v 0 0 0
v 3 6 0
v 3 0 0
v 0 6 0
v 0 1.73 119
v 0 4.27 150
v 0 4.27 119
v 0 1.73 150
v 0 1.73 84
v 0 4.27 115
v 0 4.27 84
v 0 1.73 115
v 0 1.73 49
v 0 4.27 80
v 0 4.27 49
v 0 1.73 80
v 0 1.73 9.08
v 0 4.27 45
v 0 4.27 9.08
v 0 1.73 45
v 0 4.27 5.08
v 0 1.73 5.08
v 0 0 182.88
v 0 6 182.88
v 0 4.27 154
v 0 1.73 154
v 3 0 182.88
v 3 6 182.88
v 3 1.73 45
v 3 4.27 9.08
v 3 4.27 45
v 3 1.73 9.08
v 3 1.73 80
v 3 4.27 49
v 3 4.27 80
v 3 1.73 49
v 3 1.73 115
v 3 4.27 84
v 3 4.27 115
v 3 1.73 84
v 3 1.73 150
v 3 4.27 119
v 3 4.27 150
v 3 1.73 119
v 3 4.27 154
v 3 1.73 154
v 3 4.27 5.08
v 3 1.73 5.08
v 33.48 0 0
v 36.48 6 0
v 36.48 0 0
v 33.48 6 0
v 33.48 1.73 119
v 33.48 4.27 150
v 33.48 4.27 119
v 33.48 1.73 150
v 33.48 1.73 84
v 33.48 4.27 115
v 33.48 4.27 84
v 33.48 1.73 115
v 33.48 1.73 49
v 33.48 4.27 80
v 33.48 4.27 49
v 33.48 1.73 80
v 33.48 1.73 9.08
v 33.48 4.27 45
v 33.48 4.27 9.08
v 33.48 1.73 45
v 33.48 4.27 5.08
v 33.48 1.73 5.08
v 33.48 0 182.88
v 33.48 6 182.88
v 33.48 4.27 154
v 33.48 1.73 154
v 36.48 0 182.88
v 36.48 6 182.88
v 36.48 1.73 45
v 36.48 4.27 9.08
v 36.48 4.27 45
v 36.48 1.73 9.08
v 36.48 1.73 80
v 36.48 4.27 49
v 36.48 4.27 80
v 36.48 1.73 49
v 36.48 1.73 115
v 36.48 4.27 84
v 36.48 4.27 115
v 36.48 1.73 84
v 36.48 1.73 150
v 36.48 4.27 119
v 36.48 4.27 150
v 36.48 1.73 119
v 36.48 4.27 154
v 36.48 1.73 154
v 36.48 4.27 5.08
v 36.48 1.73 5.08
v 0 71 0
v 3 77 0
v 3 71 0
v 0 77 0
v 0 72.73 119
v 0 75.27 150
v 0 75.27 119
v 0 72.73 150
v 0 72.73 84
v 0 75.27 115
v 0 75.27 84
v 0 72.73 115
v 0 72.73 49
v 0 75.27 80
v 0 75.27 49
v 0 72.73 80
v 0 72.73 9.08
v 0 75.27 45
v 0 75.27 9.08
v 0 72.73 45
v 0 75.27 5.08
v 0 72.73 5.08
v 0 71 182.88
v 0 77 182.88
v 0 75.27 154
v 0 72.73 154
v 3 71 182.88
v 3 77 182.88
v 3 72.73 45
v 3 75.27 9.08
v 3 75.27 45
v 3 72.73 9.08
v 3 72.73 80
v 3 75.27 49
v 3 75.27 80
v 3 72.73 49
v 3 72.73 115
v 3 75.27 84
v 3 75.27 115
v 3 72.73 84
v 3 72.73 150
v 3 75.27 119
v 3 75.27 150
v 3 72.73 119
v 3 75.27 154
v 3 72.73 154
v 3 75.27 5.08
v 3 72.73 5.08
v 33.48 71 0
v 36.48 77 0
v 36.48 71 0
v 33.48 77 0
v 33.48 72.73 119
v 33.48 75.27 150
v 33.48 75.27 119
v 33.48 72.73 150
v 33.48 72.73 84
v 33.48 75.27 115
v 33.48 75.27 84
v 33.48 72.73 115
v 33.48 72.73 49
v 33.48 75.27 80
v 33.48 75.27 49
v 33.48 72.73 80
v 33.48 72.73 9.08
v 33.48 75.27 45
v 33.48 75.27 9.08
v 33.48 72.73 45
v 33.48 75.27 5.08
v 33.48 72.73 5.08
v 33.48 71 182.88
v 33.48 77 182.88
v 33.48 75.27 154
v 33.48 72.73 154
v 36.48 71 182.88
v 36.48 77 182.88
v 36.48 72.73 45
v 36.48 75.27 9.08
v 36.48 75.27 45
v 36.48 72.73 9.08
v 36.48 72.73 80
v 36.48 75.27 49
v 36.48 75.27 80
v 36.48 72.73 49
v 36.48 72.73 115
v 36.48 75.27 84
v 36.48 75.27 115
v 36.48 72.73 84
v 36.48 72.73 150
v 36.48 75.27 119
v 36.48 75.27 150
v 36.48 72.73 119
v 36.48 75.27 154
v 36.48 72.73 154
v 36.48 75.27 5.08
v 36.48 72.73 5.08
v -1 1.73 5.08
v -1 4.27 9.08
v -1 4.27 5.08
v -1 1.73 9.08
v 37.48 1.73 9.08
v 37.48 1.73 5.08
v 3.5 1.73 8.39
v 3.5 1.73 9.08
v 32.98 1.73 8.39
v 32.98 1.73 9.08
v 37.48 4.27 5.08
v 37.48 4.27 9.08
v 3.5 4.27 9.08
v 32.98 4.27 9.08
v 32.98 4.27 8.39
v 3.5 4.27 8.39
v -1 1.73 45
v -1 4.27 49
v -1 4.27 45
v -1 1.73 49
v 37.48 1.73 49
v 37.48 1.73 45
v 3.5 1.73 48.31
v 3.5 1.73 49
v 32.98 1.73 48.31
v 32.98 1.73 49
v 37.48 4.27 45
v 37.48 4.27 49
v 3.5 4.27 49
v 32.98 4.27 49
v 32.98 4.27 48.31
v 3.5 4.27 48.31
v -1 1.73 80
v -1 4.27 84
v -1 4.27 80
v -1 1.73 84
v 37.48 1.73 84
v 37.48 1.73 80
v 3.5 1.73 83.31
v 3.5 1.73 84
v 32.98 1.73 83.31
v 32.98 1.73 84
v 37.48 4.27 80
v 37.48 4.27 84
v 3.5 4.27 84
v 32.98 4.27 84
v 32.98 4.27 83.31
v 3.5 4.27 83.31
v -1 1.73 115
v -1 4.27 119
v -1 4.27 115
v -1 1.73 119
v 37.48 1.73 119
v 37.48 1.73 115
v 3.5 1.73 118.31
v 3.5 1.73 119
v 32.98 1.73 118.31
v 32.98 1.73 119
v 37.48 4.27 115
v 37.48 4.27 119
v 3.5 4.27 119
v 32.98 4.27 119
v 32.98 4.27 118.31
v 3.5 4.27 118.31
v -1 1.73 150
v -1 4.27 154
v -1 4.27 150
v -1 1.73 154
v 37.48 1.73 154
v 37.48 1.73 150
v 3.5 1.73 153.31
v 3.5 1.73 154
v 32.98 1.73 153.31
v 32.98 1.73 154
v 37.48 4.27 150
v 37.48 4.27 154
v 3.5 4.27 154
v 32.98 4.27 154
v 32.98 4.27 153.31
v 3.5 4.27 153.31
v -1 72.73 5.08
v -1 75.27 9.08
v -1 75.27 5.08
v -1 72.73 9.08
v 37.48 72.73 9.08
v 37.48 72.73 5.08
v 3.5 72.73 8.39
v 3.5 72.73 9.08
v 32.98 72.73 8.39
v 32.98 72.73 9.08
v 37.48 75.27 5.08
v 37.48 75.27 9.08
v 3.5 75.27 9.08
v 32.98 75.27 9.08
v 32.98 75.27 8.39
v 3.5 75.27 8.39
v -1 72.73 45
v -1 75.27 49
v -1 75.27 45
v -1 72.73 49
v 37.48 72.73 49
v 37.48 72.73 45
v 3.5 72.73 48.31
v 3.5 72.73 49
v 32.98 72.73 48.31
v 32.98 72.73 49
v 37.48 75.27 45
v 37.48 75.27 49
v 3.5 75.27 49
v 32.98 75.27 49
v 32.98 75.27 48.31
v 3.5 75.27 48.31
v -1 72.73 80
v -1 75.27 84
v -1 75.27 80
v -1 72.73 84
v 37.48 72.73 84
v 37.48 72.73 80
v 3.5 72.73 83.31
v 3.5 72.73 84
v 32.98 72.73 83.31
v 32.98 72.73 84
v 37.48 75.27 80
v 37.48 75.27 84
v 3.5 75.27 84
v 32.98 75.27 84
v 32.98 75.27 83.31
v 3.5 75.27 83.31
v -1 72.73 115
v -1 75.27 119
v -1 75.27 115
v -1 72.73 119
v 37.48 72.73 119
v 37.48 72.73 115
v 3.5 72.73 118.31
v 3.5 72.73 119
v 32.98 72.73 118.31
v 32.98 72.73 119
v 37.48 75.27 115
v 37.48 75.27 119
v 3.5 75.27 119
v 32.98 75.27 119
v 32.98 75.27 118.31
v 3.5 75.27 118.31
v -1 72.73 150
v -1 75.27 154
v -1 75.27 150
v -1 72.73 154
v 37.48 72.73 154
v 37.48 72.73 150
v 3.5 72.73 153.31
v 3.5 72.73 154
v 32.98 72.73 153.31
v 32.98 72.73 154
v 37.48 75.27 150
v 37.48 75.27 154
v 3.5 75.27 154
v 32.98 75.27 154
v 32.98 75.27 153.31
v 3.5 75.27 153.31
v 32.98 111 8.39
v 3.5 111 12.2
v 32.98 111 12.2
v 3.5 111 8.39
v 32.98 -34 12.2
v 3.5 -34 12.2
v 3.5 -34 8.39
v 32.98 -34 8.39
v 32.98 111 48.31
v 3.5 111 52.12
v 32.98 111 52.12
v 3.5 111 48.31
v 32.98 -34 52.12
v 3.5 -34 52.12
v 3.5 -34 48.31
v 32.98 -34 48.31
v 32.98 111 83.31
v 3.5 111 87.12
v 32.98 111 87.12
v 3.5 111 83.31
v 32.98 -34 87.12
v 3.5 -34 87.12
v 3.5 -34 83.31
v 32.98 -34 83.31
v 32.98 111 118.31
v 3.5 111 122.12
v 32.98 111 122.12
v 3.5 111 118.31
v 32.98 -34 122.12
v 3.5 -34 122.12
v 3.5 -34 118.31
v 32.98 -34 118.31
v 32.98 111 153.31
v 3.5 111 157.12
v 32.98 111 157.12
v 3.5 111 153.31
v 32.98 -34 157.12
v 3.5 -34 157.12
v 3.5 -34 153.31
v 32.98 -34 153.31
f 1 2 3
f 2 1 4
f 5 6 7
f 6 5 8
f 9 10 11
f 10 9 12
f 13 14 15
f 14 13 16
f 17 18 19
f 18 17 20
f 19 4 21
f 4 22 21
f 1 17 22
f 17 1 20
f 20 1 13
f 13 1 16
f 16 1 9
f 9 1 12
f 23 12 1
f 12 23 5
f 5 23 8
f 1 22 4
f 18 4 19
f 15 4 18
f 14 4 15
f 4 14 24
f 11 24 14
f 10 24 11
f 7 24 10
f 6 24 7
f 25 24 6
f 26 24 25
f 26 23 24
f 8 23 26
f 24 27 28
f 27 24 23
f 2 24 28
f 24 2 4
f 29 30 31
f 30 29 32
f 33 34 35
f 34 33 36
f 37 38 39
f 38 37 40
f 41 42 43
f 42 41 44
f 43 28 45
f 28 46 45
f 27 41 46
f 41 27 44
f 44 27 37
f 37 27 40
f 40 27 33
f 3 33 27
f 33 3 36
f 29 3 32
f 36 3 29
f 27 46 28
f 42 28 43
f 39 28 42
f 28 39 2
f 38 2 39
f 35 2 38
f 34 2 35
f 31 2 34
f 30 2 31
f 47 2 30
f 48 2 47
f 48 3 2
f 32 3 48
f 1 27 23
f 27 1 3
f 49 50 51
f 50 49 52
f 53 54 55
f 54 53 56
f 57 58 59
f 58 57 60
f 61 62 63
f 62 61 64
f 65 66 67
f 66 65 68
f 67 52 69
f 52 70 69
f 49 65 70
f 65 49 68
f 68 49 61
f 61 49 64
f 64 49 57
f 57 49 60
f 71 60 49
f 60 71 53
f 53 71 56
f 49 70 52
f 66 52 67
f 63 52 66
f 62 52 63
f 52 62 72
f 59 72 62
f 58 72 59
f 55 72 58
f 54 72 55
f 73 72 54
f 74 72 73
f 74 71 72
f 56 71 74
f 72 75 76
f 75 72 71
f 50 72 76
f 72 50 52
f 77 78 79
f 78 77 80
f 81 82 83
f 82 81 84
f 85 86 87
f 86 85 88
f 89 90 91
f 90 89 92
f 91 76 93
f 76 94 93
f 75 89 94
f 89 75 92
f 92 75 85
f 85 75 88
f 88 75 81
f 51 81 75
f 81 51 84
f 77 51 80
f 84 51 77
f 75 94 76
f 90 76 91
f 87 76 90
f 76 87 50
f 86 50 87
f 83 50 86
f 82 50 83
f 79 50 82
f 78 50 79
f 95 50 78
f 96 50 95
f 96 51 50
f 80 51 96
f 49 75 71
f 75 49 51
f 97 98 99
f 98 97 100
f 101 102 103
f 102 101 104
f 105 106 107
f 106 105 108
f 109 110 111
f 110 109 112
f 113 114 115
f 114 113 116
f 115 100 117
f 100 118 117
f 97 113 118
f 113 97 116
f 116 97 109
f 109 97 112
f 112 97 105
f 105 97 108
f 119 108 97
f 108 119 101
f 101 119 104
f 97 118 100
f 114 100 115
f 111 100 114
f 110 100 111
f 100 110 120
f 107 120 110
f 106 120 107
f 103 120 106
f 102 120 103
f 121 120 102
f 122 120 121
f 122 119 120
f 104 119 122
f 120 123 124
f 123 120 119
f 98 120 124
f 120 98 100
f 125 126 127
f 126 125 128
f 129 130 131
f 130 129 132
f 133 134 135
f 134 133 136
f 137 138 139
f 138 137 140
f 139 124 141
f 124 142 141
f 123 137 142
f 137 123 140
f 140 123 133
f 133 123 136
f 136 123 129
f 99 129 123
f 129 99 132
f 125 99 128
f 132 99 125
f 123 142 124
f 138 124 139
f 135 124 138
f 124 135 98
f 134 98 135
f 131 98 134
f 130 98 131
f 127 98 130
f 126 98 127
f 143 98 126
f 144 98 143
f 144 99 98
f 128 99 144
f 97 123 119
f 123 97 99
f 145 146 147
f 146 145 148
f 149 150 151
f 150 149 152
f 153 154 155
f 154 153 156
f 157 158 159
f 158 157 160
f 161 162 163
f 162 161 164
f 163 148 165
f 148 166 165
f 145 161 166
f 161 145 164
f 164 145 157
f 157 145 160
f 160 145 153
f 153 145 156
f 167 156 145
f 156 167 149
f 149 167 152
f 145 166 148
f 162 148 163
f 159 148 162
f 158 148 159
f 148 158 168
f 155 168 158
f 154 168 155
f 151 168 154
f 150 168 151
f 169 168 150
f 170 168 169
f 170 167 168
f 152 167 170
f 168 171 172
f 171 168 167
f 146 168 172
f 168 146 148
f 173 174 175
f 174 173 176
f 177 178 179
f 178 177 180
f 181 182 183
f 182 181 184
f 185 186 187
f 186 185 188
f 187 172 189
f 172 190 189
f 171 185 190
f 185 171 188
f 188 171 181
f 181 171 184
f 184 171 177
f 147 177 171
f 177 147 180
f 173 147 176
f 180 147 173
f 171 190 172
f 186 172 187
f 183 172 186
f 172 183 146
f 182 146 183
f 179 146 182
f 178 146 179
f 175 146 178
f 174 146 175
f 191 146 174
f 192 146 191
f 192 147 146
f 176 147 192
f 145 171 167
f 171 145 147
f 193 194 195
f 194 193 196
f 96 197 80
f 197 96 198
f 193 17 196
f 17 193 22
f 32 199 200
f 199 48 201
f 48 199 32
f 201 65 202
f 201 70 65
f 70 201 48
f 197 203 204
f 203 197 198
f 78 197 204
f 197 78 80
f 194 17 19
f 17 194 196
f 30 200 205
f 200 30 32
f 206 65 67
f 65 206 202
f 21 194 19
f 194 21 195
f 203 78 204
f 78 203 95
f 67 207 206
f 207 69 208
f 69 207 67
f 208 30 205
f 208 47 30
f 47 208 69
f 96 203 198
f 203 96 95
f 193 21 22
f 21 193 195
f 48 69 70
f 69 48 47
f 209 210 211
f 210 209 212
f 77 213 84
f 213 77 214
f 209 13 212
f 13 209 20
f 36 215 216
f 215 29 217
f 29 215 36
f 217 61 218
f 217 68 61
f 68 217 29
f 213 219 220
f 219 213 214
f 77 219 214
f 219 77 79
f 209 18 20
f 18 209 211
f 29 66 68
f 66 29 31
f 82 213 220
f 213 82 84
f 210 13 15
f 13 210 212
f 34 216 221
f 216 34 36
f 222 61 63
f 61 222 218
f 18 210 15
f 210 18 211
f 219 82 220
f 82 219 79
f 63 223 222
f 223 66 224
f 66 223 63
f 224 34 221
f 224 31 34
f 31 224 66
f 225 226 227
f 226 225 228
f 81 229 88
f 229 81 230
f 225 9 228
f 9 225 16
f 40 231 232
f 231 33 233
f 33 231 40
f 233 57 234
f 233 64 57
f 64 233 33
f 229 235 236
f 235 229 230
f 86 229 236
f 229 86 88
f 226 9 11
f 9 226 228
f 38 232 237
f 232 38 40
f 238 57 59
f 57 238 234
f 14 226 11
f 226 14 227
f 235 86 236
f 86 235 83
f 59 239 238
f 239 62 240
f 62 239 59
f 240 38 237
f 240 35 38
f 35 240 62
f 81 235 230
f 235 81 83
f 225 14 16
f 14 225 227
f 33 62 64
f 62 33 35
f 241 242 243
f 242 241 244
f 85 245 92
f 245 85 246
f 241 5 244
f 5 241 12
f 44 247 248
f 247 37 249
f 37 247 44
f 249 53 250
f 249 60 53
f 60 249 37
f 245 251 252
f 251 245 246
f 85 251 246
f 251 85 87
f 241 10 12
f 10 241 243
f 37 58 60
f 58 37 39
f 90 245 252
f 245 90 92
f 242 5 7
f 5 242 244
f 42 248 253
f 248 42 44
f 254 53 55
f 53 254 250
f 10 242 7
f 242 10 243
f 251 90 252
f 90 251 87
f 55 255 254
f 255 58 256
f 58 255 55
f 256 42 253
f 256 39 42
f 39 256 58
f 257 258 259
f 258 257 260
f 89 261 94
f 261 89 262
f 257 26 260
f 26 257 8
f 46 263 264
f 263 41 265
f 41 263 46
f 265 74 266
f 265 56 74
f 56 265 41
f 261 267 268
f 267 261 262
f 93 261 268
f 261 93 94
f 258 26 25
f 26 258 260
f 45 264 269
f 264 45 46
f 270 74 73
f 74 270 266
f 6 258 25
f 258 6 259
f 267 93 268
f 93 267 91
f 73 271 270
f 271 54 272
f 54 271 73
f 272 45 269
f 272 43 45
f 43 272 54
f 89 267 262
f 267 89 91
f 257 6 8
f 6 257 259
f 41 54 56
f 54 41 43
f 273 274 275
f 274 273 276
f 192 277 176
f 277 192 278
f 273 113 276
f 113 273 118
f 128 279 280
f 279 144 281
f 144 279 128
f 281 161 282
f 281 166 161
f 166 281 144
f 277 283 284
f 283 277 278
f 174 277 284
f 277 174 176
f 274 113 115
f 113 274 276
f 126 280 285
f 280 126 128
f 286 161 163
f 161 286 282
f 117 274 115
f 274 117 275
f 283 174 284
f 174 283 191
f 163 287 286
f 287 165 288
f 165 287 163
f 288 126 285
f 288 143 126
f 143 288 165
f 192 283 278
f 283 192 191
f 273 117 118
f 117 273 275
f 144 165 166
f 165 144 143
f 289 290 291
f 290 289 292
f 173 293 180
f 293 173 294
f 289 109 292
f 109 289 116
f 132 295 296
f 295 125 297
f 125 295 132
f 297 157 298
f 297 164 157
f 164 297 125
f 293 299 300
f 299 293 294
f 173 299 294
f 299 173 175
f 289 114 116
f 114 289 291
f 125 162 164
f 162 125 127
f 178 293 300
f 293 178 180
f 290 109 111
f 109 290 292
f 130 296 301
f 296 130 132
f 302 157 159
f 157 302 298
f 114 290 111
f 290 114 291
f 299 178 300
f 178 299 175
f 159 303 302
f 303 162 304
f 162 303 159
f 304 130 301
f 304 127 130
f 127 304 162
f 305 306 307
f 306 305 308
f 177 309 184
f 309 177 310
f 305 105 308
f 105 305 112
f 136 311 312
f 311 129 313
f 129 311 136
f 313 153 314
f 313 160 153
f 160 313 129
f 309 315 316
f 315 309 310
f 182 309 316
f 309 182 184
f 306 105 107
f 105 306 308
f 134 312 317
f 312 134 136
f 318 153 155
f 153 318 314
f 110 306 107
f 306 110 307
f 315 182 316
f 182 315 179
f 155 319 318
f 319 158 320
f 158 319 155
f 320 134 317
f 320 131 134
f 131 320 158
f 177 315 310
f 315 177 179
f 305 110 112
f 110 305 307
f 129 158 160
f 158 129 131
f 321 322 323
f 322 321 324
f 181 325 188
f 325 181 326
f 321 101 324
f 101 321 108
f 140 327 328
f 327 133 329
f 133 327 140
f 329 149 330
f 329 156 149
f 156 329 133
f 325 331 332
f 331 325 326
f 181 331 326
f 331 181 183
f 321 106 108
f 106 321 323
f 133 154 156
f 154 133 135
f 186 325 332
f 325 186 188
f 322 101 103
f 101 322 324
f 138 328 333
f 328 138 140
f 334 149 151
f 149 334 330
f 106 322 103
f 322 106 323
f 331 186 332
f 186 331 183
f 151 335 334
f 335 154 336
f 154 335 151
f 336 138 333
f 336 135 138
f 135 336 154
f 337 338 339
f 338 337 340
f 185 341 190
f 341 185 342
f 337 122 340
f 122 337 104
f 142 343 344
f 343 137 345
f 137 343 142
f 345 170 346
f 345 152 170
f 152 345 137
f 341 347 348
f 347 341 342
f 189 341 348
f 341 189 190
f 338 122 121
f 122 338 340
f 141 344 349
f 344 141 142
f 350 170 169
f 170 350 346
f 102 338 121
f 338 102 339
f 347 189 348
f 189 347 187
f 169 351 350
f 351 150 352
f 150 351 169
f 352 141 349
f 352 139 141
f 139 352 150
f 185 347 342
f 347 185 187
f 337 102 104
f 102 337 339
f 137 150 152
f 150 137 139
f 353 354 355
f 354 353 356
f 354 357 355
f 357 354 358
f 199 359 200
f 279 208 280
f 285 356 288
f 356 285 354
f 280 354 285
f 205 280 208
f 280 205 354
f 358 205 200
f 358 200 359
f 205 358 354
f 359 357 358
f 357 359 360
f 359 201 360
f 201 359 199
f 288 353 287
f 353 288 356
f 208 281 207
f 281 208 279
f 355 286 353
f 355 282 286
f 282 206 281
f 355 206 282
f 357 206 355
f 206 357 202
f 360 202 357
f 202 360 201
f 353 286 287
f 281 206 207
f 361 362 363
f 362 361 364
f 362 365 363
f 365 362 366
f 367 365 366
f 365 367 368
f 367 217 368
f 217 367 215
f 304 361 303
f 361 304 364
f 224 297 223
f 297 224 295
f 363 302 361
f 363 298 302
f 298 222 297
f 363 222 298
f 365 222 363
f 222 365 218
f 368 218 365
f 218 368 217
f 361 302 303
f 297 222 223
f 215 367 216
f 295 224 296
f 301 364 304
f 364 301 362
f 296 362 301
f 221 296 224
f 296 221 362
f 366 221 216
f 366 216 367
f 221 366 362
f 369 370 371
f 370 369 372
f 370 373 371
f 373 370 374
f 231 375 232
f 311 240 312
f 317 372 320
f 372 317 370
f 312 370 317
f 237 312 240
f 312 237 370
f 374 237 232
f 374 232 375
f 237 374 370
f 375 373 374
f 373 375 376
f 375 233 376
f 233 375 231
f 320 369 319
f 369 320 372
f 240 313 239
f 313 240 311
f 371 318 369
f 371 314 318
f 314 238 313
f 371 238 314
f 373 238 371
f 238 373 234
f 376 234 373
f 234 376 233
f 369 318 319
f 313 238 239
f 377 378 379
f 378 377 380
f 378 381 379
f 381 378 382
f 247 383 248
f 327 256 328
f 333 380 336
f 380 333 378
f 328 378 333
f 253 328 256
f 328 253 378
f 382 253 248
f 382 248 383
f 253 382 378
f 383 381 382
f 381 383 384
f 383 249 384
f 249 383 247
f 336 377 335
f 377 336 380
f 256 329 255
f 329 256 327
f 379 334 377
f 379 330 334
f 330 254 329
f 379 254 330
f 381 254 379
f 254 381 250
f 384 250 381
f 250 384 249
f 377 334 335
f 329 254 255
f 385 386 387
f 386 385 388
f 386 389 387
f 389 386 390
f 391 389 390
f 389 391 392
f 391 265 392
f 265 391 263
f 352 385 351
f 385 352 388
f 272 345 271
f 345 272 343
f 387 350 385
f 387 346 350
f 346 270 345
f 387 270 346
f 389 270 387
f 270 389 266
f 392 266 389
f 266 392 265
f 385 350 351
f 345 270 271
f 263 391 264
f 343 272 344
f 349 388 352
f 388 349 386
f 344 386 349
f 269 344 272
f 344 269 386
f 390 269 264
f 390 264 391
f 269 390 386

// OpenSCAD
// file: common/board.scad
// board.scad

BOARD_DEFAULT_LENGTH = 600;
BOARD_DEFAULT_WIDTH = 120;
BOARD_DEFAULT_THICKNESS = 120;

function board_get_default_size()
    = [BOARD_DEFAULT_LENGTH, BOARD_DEFAULT_WIDTH, BOARD_DEFAULT_THICKNESS];

module board(size = board_get_default_size(), center = false)
{
    // size[0] is always with the grain
    // size[1] is against the grain
    // size[2] is the board thickness
    cube(size = size, center = center);
}
// main file
// shelf.scad
// units: centimeter
// ref https://i.pinimg.com/originals/da/66/4a/da664a588a1fa8e5214f0fcef946b04d.jpg

use <common/board.scad>

TENON_OVERRUN = 1.0;
SHELF_BOARD_GAP = 0.5;
SHELF_INSET = 0.5;

// inside post to post
SHELF_INNER_X_DISTANCE = 30.48;
SHELF_INNER_Y_DISTANCE = 65;

VERT_SUPPORT_BOARD_LENGTH = 182.88;
VERT_SUPPORT_BOARD_WIDTH = 6;
VERT_SUPPORT_BOARD_THICKNESS = 3;

HORIZ_SUPPORT_BOARD_LENGTH =
        SHELF_INNER_X_DISTANCE
        + (2 * VERT_SUPPORT_BOARD_THICKNESS)
        + (2 * TENON_OVERRUN);
HORIZ_SUPPORT_BOARD_WIDTH = 4;
HORIZ_SUPPORT_BOARD_THICKNESS = 2.54;

SHELF_BOARD_LENGTH = 145;
SHELF_BOARD_WIDTH =
        SHELF_INNER_X_DISTANCE
        - (2 * SHELF_BOARD_GAP);
SHELF_BOARD_THICKNESS = 3.81;

VERT_SUPPORT_OFFSETS = [
        5.08,
        45,
        45 + 35,
        45 + (2 * 35),
        45 + (3 * 35)];

module vert_support_board()
{
    board_size = [
            VERT_SUPPORT_BOARD_LENGTH,
            VERT_SUPPORT_BOARD_WIDTH,
            VERT_SUPPORT_BOARD_THICKNESS];
    
    translate([VERT_SUPPORT_BOARD_THICKNESS, 0, 0])
        rotate([0, -90, 0])
            board(board_size);
}

module horiz_support_board()
{
    board_size = [
            HORIZ_SUPPORT_BOARD_LENGTH,
            HORIZ_SUPPORT_BOARD_WIDTH,
            HORIZ_SUPPORT_BOARD_THICKNESS];
    
    offset_m = [
            -TENON_OVERRUN,
            HORIZ_SUPPORT_BOARD_THICKNESS
                    + (VERT_SUPPORT_BOARD_WIDTH/2)
                    - (HORIZ_SUPPORT_BOARD_THICKNESS/2),
            0];
    
    translate(offset_m)
        rotate([90, 0, 0])
            board(board_size);
}

module shelf_board()
{
    board_size = [
            SHELF_BOARD_LENGTH,
            SHELF_BOARD_WIDTH,
            SHELF_BOARD_THICKNESS];
    
    translate([SHELF_BOARD_WIDTH, 0, 0])
        rotate([0, 0, 90])
            board(board_size);
}

module horizontal_supports()
{
    for(z = VERT_SUPPORT_OFFSETS)
    {
        translate([0, 0, z])
            horiz_support_board();
    }
}

module vertical_supports()
{
    offset_x =
            VERT_SUPPORT_BOARD_THICKNESS
            + SHELF_INNER_X_DISTANCE;

    vert_support_board();
    
    translate([offset_x, 0, 0])
        vert_support_board();
}

module vertical_assembly()
{
    offset_y =
            VERT_SUPPORT_BOARD_WIDTH
            + SHELF_INNER_Y_DISTANCE;

    vertical_supports();

    translate([0, offset_y, 0])
        vertical_supports();
}

module horizontal_assembly()
{
    offset_y =
            VERT_SUPPORT_BOARD_WIDTH
            + SHELF_INNER_Y_DISTANCE;

    horizontal_supports();

    translate([0, offset_y, 0])
        horizontal_supports();
}

module shelf_boards_assembly()
{
    mx =
            VERT_SUPPORT_BOARD_WIDTH
            + (SHELF_INNER_Y_DISTANCE / 2);
    
    bx = SHELF_BOARD_LENGTH / 2;
    
    offset_y = mx - bx;

    for(z = VERT_SUPPORT_OFFSETS)
    {
        offset_m = [
                VERT_SUPPORT_BOARD_THICKNESS
                        + SHELF_BOARD_GAP,
                offset_y,
                z + SHELF_BOARD_THICKNESS - SHELF_INSET];

        translate(offset_m)
            shelf_board();
    }
}

module shelf()
{
    color("Peru")
        vertical_assembly();
    
    color("SandyBrown")
        horizontal_assembly();
    
    color("NavajoWhite")
        shelf_boards_assembly();
}

shelf();
